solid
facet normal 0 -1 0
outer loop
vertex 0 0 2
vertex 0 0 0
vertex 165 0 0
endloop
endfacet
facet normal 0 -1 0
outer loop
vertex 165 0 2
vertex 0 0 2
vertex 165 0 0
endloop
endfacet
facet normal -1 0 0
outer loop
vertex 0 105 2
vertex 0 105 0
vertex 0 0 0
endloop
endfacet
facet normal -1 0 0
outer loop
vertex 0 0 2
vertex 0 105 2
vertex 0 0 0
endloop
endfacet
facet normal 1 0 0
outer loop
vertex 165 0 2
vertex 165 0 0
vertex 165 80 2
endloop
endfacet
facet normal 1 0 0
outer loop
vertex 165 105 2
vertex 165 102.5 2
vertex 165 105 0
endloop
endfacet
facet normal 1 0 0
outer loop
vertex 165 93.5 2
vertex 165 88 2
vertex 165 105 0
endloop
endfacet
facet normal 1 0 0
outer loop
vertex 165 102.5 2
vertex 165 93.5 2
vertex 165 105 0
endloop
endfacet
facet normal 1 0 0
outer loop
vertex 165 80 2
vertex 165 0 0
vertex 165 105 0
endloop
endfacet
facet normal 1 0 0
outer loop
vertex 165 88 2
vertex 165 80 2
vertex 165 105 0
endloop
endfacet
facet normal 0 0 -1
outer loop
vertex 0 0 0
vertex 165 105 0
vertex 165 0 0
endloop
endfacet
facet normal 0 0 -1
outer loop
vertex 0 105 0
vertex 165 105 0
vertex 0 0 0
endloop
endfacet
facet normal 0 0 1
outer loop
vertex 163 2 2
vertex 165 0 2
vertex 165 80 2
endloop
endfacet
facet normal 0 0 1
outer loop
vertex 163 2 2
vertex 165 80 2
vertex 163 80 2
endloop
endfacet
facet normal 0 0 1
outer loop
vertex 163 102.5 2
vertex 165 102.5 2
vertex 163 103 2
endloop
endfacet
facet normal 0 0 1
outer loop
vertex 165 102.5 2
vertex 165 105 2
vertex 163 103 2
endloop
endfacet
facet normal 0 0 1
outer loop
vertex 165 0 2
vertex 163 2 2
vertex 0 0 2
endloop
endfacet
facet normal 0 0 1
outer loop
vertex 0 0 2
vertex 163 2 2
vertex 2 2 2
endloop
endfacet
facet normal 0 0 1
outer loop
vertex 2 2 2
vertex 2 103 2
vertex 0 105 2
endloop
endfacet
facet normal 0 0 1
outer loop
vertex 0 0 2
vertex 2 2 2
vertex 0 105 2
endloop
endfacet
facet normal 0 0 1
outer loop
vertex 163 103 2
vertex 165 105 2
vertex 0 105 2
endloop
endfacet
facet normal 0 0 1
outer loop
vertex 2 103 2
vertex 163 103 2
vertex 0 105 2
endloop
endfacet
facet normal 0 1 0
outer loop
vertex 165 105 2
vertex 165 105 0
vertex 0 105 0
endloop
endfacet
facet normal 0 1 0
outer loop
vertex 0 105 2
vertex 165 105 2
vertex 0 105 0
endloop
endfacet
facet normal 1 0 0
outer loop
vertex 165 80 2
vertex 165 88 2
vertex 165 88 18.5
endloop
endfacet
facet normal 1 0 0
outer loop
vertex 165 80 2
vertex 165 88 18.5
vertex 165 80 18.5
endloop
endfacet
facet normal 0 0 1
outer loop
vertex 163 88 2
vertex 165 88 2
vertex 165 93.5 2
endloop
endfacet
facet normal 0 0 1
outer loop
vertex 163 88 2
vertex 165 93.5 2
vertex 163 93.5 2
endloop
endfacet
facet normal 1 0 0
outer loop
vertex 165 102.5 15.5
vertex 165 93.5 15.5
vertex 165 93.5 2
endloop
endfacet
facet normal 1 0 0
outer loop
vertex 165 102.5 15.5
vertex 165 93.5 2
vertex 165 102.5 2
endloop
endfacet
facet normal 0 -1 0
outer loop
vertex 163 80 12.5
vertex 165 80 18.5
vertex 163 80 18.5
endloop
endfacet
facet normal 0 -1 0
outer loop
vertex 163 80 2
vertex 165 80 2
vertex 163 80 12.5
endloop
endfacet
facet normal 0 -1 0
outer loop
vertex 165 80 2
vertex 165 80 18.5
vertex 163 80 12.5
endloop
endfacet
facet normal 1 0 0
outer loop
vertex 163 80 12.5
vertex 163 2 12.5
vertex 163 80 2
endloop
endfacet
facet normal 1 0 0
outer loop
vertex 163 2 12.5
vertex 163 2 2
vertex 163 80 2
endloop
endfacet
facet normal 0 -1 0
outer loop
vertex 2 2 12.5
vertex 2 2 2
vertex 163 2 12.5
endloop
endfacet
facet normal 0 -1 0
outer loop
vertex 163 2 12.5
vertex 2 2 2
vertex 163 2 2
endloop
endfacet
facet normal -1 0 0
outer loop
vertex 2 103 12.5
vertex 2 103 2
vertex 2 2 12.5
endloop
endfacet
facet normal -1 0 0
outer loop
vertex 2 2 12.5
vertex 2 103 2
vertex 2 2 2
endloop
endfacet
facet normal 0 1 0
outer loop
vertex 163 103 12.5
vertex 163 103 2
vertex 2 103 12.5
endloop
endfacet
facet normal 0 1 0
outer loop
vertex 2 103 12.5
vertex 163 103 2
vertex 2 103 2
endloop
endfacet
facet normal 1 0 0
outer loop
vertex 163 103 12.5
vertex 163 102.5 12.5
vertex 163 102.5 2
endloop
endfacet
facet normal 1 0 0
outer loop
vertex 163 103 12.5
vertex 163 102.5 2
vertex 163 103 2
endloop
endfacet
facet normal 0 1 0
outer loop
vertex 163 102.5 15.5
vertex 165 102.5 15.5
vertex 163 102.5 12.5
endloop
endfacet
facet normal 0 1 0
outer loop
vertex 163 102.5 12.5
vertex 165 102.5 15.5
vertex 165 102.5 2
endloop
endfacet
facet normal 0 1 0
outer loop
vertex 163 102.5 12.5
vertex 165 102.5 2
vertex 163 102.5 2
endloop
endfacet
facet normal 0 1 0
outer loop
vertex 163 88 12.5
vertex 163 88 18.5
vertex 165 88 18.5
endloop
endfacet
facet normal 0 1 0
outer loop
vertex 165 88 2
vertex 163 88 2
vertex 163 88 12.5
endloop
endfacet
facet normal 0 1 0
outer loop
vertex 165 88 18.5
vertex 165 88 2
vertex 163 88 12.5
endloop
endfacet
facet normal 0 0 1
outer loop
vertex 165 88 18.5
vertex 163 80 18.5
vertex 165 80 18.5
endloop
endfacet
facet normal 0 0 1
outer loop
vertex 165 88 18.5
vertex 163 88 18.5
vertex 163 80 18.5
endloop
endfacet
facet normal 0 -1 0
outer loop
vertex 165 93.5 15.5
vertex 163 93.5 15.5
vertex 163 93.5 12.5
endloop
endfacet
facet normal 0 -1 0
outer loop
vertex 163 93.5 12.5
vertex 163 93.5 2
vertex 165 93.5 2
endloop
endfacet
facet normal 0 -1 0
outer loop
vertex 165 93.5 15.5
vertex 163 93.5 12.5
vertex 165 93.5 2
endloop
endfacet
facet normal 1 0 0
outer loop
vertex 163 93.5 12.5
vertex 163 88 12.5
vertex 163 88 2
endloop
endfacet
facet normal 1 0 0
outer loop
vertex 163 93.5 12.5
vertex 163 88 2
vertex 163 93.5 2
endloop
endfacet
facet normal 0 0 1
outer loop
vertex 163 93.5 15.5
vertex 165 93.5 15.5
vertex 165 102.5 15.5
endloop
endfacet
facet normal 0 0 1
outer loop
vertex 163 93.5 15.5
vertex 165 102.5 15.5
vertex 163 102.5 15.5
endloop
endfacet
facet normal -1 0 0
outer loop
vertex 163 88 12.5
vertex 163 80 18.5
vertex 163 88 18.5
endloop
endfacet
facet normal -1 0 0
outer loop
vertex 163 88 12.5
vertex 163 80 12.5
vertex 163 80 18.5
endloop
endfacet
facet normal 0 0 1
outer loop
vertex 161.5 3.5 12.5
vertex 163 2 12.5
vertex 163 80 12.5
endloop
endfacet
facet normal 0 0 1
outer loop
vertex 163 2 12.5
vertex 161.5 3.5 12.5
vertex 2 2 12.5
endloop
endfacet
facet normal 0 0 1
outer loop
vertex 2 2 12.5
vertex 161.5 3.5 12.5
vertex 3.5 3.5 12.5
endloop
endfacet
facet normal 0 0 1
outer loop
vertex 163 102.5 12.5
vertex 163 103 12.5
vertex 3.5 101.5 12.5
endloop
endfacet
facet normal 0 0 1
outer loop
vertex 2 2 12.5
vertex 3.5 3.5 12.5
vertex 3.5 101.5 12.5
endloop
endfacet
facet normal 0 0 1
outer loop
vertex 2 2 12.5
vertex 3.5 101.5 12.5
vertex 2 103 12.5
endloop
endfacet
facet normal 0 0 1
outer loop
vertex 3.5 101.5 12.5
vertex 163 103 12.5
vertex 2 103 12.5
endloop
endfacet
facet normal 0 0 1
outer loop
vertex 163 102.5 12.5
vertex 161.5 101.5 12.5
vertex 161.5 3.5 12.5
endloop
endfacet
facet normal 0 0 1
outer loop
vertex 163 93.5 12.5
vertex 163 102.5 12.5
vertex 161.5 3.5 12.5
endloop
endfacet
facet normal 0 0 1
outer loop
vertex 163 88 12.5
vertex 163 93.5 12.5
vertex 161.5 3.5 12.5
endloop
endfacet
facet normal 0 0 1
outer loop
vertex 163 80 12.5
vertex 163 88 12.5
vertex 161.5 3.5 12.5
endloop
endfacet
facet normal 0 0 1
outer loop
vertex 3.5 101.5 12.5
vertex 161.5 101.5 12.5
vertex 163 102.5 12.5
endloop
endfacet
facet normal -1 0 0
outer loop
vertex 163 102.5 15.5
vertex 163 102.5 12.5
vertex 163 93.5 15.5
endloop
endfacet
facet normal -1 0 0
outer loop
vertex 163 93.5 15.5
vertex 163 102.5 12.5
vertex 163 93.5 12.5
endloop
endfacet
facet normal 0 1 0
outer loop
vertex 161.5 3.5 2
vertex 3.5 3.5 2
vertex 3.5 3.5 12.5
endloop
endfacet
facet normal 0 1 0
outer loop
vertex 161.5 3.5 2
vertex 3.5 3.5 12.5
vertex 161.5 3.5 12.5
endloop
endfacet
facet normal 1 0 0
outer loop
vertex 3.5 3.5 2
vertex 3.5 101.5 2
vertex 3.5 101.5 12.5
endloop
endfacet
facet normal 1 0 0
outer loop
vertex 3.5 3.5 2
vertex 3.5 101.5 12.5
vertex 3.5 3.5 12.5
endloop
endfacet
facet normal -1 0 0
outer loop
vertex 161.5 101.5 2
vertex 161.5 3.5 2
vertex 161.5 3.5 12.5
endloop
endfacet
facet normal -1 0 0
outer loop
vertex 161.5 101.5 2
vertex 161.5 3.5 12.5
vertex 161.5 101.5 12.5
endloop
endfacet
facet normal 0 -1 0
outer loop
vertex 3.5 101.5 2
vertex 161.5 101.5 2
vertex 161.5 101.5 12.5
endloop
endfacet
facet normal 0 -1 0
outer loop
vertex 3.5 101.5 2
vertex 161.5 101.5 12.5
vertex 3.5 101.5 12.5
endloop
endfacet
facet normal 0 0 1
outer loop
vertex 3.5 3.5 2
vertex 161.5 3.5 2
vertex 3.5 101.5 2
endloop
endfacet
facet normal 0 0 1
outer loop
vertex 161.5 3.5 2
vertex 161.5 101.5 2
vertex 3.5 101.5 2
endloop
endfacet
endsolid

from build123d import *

# Parameters (mm, degrees)
SKETCH_W      = 165
SKETCH_H      = 105
PAD_DEPTH     = 2
SKETCH001_W   = 161
SKETCH001_H   = 101
SKETCH001_W_2 = 158
SKETCH001_H_2 = 98
PAD001_DEPTH  = 10.5
SKETCH002_W   = 2
SKETCH002_H   = 8
PAD002_DEPTH  = 16.5
SKETCH003_W   = 2
SKETCH003_H   = 9
PAD003_DEPTH  = 13.5


with BuildPart() as part:
    # Sketch → Pad (new body)
    with BuildSketch(Plane.XY):
        with Locations((82.5, 52.5)):
            Rectangle(SKETCH_W, SKETCH_H)
    extrude(amount=PAD_DEPTH)

    # Sketch001 → Pad001 (new body)
    with BuildSketch(Plane.XY.offset(2)):
        with Locations((82.5, 52.5)):
            Rectangle(SKETCH001_W, SKETCH001_H)
        with Locations((82.5, 52.5)):
            Rectangle(SKETCH001_W_2, SKETCH001_H_2, mode=Mode.SUBTRACT)
    extrude(amount=PAD001_DEPTH)

    # Sketch002 → Pad002 (new body)
    with BuildSketch(Plane.XY.offset(2)):
        with Locations((164, 84)):
            Rectangle(SKETCH002_W, SKETCH002_H)
    extrude(amount=PAD002_DEPTH)

    # Sketch003 → Pad003 (new body)
    with BuildSketch(Plane.XY.offset(2)):
        with Locations((164, 98)):
            Rectangle(SKETCH003_W, SKETCH003_H)
    extrude(amount=PAD003_DEPTH)


solid = part.part
